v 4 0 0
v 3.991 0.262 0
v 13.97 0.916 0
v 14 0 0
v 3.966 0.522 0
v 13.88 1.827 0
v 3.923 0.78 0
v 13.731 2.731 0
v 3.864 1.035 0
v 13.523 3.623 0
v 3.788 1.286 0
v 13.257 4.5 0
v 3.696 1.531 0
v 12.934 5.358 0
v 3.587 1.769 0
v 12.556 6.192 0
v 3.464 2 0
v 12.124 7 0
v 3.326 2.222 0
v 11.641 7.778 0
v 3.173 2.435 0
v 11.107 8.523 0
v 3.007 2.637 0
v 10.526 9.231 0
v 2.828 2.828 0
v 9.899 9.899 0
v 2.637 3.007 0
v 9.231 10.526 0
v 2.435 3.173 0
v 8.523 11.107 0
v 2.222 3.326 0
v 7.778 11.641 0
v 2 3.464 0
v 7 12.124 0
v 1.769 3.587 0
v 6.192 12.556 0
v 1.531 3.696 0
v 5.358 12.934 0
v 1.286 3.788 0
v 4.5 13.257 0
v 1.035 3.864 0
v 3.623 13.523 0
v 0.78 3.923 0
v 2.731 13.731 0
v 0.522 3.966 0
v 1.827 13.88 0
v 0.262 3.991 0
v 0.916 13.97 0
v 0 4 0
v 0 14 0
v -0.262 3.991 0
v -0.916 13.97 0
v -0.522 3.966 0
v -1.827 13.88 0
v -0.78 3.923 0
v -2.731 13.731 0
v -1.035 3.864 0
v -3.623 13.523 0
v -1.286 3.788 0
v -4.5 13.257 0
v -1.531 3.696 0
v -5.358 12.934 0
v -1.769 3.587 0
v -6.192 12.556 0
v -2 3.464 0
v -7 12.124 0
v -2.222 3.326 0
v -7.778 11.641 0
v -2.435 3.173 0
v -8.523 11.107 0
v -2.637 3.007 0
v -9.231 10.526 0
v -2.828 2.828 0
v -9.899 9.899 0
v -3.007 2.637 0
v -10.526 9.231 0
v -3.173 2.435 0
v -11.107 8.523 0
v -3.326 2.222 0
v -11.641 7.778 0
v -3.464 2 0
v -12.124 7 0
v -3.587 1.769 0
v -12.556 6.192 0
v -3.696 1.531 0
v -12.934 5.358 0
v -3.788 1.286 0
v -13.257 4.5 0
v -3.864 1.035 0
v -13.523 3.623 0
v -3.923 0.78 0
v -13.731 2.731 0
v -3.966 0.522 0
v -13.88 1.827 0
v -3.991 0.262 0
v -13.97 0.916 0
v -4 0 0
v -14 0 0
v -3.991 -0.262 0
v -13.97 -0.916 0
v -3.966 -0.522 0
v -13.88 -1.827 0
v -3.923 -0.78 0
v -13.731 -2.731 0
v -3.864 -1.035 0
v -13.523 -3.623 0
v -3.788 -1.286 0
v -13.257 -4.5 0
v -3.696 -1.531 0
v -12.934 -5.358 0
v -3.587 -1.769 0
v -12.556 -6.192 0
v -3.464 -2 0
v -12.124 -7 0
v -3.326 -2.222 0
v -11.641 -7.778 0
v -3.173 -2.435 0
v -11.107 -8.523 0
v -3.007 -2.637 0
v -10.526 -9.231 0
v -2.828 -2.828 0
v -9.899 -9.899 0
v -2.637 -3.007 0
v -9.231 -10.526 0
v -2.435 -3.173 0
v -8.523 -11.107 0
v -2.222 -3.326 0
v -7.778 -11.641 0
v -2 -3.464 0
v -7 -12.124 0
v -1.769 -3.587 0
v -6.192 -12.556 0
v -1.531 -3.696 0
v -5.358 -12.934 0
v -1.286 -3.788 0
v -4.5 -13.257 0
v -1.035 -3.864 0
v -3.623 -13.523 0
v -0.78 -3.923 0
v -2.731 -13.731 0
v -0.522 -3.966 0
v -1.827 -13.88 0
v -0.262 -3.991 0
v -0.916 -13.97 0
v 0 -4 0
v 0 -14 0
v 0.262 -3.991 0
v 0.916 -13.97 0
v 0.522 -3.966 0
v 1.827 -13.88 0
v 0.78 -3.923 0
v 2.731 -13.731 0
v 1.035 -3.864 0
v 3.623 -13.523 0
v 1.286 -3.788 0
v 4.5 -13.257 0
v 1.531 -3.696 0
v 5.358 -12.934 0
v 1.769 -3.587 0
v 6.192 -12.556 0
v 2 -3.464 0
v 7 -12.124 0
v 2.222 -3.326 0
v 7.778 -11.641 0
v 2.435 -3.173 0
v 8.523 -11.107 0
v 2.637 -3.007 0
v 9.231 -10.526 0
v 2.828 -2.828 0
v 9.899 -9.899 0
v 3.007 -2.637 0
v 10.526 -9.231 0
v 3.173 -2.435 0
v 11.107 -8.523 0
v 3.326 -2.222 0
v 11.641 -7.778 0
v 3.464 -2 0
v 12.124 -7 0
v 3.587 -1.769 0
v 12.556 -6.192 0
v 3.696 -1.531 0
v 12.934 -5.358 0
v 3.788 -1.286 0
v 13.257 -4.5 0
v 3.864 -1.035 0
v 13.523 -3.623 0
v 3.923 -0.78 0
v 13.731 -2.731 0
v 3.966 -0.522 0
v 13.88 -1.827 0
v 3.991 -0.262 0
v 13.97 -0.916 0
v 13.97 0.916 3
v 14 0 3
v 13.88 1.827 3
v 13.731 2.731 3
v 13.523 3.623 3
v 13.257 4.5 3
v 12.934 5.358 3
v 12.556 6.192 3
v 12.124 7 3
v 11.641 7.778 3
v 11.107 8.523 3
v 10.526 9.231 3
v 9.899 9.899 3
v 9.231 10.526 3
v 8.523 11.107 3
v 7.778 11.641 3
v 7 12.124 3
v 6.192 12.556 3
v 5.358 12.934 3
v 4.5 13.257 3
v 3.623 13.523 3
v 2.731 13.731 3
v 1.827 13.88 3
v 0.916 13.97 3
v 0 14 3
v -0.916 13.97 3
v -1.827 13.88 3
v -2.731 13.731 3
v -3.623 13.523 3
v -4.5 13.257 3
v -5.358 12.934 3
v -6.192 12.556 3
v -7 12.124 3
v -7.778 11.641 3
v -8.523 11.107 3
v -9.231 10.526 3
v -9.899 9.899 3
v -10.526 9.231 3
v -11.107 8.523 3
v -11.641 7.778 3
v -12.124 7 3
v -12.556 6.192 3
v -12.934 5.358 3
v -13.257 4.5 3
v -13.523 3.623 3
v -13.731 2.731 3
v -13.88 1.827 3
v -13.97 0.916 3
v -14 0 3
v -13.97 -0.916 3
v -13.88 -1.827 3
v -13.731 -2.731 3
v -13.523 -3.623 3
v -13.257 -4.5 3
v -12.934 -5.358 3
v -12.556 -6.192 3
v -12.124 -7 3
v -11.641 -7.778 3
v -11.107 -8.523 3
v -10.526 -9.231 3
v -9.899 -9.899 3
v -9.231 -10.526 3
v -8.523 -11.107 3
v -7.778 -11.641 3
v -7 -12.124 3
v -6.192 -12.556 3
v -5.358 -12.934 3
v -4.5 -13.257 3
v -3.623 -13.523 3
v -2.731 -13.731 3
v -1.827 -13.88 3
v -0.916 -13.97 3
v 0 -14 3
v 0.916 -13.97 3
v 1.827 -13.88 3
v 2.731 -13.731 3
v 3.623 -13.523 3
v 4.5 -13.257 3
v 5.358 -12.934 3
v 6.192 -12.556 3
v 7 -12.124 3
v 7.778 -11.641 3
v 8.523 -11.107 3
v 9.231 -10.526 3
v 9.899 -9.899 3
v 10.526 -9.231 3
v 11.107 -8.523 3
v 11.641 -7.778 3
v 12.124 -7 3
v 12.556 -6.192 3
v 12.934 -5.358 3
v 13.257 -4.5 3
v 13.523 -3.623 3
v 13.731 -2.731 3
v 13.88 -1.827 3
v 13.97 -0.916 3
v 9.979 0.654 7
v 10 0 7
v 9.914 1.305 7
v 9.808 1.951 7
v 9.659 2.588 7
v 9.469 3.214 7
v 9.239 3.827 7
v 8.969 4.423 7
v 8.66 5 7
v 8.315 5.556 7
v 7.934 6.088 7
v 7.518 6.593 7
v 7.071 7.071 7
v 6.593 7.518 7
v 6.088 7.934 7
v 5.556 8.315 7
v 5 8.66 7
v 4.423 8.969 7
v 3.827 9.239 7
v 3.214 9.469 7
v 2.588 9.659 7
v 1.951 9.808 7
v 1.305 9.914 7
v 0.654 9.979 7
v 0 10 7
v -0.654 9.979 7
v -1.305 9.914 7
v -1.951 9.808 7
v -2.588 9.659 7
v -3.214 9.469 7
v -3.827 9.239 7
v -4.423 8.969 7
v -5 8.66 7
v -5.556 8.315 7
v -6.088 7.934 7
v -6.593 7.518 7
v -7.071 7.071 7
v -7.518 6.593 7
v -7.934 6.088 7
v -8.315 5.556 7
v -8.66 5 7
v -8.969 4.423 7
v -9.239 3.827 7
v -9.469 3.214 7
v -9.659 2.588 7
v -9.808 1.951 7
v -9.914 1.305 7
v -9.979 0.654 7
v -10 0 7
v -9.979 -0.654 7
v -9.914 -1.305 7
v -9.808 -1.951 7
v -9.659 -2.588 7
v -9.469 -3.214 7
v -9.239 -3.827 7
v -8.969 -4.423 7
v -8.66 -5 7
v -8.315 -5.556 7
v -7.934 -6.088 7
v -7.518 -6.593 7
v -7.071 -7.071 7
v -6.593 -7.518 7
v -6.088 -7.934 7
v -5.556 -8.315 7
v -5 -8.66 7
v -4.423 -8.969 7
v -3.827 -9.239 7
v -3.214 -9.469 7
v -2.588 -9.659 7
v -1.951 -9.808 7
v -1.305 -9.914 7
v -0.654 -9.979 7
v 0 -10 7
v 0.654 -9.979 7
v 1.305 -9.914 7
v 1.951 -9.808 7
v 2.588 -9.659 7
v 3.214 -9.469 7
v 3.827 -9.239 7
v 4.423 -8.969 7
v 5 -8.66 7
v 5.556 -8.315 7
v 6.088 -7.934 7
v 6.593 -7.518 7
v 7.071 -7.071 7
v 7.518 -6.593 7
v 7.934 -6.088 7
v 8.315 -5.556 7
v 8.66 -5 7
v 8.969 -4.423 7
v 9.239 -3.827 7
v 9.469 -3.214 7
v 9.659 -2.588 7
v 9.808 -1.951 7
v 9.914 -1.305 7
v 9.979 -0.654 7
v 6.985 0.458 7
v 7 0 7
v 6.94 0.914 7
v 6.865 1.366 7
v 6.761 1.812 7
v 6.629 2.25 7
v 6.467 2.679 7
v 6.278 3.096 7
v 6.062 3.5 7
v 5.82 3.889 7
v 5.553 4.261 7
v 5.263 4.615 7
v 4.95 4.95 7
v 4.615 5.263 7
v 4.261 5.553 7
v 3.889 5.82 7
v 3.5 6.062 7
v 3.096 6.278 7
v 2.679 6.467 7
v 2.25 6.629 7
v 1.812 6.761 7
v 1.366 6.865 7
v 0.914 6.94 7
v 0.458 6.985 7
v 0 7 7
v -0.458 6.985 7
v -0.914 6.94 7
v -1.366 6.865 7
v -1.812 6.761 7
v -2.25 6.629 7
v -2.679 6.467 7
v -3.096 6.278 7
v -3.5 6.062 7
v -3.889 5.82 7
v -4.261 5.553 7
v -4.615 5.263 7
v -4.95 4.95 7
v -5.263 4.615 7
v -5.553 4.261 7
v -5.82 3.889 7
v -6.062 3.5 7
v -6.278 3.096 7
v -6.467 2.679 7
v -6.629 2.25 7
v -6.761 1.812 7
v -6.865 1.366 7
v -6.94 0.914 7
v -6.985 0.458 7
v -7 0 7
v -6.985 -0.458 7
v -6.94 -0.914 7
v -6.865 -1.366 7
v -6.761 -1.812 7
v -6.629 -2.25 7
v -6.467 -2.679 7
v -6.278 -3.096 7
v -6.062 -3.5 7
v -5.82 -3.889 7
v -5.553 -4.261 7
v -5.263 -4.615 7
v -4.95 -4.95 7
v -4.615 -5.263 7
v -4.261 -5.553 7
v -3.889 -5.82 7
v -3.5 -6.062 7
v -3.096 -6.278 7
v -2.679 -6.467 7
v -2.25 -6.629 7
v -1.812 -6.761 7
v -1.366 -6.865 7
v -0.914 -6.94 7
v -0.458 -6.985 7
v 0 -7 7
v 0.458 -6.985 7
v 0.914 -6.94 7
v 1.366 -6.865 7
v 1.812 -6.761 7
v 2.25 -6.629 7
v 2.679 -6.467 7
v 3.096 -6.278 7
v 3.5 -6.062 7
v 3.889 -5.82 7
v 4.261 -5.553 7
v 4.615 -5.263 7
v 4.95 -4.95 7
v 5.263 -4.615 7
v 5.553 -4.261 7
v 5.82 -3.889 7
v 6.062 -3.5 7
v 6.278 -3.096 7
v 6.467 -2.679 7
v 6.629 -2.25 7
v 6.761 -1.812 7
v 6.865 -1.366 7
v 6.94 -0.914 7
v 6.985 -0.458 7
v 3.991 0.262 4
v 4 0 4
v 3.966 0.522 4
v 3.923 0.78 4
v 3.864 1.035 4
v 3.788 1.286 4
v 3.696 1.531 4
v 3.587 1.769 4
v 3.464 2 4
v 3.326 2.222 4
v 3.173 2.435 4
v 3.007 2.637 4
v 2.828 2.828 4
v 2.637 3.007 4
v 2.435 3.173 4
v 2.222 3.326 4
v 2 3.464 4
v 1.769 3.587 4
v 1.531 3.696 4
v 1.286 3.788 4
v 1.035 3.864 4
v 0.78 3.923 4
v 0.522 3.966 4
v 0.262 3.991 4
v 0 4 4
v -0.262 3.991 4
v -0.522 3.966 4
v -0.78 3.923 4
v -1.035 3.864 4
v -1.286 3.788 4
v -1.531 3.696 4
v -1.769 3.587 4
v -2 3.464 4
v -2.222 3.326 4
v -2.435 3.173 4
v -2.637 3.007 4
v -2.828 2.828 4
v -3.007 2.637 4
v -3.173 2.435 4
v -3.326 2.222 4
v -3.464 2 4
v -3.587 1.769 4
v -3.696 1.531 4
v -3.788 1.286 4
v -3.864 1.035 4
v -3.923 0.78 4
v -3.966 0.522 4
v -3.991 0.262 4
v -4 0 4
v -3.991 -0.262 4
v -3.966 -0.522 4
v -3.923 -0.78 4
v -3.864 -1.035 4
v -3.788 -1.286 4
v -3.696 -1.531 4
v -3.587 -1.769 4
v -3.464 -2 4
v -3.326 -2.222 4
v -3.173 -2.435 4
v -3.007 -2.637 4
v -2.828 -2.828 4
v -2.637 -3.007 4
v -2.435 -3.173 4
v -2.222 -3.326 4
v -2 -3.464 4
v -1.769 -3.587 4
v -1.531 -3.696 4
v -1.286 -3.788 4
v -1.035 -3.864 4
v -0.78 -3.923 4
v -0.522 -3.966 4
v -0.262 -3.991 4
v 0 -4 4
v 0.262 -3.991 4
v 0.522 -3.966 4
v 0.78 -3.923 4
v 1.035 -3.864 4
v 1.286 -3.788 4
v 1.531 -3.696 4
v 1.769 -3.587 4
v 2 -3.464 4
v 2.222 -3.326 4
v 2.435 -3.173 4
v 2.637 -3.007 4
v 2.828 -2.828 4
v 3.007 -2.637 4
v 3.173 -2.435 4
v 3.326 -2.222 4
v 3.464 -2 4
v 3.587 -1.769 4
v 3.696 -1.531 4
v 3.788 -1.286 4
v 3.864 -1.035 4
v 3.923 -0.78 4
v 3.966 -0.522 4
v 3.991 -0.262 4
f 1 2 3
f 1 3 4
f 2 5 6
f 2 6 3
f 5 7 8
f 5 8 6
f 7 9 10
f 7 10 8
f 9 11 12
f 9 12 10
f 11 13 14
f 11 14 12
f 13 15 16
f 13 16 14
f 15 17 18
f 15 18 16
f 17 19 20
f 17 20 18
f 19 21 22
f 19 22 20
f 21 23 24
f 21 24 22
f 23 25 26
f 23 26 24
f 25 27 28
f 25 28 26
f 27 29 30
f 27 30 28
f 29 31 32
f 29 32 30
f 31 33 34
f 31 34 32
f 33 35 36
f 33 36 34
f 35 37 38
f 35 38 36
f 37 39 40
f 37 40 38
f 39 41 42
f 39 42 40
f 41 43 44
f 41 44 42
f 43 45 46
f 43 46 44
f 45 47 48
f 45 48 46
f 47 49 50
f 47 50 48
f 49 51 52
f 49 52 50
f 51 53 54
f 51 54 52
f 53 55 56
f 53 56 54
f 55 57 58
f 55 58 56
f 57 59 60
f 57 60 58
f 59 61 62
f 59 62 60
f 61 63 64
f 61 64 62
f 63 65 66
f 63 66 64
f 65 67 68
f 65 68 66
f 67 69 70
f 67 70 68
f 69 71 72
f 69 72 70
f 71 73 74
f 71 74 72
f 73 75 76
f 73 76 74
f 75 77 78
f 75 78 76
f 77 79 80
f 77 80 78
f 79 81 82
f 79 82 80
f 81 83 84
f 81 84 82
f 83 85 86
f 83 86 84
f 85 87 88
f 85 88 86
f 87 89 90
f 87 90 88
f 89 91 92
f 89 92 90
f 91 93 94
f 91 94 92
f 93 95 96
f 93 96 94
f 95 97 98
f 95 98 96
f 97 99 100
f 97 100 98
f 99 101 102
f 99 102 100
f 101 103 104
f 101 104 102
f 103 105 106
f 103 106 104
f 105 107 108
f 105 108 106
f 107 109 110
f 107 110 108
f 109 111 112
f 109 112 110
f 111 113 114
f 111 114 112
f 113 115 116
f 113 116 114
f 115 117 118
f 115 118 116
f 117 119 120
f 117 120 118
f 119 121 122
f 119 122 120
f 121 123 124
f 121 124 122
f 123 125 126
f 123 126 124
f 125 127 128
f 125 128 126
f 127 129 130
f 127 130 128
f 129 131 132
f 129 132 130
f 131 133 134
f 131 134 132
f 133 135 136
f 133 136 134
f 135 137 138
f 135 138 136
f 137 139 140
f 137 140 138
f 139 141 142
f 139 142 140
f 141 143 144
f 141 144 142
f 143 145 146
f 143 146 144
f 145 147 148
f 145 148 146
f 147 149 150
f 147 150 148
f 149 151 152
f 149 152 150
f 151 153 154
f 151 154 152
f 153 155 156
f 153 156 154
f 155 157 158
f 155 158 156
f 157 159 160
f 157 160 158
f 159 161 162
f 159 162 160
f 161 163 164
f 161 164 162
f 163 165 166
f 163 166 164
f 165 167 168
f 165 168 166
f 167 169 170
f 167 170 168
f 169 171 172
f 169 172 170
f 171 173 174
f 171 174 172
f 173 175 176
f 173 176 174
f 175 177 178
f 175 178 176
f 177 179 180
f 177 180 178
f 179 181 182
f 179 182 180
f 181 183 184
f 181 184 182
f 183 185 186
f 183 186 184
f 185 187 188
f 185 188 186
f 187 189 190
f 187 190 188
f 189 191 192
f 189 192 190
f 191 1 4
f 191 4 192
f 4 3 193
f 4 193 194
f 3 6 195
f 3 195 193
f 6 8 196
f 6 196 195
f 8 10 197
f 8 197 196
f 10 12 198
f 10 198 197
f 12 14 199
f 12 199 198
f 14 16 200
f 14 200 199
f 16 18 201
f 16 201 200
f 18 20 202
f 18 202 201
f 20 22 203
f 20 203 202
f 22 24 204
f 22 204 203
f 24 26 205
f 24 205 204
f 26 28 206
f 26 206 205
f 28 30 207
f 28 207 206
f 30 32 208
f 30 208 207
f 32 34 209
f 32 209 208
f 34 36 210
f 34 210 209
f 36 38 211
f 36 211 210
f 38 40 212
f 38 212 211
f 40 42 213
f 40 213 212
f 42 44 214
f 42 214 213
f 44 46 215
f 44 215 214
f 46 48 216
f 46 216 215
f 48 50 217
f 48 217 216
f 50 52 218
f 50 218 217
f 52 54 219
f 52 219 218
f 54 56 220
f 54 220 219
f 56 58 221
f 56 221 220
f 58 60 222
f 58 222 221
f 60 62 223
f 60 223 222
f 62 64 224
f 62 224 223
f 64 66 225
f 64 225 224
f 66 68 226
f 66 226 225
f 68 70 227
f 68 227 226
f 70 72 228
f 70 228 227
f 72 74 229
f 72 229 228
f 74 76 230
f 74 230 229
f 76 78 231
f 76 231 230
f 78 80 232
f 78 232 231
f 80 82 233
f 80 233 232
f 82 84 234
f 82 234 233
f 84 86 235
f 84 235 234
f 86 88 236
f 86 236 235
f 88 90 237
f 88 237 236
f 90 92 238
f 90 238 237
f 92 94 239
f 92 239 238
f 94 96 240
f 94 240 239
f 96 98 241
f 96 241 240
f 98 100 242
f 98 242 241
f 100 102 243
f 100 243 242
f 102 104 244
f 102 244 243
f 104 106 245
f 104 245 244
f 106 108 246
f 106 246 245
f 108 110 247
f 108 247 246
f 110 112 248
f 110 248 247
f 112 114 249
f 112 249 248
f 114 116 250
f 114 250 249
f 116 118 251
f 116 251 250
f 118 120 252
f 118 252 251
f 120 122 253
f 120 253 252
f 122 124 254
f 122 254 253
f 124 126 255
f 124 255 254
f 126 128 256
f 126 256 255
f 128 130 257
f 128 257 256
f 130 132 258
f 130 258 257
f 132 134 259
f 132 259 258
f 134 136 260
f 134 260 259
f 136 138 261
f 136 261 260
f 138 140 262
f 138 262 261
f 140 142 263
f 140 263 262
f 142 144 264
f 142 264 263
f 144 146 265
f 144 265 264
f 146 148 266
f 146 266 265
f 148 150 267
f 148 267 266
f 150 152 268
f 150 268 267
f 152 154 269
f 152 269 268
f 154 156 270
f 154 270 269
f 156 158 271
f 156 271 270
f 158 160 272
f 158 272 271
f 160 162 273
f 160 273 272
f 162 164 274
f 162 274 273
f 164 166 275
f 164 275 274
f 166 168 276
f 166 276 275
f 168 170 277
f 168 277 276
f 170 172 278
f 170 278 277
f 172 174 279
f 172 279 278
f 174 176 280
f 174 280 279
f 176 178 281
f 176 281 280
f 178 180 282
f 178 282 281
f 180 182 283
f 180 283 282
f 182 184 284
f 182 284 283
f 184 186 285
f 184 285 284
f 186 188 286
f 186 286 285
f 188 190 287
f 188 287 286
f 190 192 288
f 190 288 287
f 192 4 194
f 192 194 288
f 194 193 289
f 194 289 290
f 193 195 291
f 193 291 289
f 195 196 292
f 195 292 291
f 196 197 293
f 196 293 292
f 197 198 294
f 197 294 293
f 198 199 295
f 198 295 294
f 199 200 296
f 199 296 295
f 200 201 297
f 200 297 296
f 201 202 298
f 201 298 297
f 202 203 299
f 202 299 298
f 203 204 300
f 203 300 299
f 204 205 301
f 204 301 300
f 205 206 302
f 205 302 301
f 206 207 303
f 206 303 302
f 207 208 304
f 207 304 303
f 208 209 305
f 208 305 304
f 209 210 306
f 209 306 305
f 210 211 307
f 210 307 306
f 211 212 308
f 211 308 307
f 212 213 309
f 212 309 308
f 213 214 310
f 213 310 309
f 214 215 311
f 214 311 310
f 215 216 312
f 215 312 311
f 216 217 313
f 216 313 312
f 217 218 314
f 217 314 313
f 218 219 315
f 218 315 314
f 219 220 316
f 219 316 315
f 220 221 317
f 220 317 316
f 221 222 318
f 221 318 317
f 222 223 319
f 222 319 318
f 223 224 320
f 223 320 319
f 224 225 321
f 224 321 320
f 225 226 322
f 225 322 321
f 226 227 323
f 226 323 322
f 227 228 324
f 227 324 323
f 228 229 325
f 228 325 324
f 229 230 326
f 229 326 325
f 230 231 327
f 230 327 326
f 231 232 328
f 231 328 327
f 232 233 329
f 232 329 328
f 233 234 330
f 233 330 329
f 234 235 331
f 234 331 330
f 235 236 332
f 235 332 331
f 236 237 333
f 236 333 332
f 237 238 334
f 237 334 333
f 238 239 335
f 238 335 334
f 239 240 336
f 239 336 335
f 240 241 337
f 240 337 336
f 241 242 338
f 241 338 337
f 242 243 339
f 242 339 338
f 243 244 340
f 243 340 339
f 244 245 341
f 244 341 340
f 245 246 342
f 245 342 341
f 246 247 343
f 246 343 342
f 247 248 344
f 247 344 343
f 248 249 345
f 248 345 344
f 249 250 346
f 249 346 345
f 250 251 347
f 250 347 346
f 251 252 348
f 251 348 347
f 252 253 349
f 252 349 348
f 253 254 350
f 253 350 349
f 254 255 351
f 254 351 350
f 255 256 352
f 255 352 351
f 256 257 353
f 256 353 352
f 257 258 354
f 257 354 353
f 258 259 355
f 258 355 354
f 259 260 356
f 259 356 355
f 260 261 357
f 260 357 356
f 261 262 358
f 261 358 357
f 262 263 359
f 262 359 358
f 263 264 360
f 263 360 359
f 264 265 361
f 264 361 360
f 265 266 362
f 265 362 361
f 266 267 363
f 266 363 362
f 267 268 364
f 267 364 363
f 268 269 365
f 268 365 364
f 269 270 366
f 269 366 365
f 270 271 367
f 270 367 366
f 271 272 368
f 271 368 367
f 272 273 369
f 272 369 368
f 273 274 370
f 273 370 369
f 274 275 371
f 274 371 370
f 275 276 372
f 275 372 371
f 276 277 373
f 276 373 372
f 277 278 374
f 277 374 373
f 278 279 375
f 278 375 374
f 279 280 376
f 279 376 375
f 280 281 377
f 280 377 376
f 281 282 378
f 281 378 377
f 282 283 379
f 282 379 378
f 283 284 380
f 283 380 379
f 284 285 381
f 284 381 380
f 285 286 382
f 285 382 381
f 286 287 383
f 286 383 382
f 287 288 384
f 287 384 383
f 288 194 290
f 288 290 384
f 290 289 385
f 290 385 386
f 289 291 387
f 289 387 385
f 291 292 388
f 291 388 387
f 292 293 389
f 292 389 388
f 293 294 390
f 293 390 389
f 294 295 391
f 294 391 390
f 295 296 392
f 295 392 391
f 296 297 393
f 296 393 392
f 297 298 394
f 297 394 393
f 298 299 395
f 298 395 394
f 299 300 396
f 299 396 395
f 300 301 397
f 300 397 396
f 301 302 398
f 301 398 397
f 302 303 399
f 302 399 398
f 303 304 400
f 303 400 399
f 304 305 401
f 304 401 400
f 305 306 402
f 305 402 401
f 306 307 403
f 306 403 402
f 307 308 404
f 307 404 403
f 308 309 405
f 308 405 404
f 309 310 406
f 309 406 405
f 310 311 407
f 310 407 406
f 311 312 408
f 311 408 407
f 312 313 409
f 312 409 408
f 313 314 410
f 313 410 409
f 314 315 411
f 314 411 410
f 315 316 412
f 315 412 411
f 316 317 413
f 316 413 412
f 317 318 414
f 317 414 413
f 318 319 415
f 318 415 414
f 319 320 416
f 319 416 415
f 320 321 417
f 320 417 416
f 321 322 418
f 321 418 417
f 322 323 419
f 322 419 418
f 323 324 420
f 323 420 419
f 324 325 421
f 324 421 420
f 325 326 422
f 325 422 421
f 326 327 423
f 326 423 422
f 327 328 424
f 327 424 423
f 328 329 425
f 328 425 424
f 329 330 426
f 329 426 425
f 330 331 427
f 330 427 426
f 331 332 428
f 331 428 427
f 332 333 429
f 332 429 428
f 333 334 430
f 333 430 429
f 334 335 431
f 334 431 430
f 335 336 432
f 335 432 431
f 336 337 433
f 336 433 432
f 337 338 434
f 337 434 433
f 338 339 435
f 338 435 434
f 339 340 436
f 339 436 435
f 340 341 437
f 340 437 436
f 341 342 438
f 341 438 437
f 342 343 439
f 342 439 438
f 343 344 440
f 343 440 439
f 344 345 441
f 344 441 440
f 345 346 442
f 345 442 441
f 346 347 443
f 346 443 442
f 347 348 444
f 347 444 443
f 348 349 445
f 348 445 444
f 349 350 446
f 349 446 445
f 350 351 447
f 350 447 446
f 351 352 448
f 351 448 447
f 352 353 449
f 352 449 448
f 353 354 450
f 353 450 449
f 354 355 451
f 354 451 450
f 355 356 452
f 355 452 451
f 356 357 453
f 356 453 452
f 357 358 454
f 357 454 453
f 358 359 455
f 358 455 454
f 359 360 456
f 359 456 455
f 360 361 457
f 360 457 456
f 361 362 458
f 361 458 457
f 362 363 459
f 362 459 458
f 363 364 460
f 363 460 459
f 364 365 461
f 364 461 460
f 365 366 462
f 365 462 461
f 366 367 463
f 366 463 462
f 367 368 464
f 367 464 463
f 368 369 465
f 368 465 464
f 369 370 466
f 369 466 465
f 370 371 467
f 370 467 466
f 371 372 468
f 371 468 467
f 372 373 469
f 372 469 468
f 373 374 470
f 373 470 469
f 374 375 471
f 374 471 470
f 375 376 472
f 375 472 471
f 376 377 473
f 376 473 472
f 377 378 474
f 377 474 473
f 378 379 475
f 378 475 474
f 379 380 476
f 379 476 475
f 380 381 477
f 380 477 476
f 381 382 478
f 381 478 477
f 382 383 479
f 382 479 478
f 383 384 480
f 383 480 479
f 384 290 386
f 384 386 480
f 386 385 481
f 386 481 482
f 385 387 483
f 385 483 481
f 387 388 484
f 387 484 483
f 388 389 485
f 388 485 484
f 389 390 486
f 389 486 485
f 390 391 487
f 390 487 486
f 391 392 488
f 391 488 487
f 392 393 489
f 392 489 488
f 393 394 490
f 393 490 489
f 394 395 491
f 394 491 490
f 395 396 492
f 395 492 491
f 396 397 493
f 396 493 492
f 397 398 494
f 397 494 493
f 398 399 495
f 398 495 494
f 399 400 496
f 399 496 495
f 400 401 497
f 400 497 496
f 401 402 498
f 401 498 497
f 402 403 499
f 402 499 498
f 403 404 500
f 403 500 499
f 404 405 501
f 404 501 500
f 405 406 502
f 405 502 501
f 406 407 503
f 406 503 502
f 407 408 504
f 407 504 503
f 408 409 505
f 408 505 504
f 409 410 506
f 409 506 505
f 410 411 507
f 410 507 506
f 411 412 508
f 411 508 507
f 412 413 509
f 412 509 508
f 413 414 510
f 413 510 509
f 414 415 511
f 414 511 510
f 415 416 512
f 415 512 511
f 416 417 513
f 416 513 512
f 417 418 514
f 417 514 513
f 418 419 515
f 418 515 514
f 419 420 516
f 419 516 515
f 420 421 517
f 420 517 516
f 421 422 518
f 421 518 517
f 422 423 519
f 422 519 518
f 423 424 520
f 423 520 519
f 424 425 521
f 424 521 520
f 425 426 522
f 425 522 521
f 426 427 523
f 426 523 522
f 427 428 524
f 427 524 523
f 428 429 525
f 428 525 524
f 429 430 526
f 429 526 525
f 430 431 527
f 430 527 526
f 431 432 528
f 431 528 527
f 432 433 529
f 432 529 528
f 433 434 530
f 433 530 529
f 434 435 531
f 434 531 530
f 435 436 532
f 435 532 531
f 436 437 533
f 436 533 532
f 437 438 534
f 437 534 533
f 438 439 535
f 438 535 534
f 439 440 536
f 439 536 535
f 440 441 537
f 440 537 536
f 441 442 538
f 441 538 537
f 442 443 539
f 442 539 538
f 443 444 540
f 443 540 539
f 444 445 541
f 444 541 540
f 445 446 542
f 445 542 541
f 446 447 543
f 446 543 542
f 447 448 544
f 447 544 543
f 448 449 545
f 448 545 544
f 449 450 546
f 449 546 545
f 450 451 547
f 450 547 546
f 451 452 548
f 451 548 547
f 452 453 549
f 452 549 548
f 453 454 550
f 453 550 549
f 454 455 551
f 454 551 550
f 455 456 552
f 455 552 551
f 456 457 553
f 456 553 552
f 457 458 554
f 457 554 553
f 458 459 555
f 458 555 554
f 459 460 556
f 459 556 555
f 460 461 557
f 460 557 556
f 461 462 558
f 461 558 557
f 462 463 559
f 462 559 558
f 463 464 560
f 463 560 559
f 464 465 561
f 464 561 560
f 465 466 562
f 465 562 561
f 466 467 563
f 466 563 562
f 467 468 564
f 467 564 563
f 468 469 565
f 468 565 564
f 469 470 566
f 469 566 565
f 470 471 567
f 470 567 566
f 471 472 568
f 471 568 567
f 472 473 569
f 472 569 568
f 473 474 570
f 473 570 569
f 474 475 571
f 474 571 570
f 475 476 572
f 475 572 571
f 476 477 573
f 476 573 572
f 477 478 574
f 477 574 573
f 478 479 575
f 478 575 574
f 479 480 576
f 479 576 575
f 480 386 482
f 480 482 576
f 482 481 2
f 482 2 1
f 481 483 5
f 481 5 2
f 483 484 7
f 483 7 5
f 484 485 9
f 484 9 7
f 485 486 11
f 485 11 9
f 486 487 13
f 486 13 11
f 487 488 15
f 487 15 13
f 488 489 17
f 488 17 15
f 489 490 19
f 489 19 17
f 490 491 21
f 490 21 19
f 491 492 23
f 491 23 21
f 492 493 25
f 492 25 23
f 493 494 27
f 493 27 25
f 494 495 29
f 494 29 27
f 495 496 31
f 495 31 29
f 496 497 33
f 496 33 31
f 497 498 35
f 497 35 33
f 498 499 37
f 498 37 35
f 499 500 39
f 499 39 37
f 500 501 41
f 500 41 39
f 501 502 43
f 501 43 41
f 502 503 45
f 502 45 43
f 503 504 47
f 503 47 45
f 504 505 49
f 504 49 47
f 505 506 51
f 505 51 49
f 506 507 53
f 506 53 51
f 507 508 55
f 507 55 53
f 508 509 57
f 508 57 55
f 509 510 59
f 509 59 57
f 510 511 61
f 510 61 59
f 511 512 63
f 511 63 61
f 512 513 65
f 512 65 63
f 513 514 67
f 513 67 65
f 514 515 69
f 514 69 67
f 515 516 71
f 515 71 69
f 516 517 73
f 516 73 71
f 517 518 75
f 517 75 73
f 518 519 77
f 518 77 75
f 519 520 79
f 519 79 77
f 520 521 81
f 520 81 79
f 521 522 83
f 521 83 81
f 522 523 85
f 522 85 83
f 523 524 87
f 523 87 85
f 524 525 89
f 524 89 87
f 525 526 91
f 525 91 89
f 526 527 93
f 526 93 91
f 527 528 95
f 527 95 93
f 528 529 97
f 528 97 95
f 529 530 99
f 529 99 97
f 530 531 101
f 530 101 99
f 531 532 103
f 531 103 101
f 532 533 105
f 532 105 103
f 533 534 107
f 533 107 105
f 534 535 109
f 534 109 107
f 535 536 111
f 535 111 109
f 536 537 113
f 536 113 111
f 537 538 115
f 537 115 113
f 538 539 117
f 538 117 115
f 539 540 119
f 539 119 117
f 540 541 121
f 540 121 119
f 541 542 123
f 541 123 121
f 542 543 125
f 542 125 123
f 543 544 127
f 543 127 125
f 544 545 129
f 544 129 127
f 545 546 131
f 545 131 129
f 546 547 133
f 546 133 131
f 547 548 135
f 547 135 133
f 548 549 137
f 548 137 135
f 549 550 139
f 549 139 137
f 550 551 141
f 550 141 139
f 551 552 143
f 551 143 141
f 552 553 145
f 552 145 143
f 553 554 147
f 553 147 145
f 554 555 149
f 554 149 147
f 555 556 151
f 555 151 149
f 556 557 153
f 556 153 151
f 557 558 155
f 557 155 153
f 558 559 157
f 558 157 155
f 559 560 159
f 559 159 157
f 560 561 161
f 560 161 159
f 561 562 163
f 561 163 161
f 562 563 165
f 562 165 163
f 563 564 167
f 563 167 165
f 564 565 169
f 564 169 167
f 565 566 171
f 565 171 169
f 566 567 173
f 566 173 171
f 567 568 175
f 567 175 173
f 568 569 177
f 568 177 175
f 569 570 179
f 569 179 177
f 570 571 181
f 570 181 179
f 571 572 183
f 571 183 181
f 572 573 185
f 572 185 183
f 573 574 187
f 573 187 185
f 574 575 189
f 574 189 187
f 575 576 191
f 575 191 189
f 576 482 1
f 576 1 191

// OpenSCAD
// Original MechIntel educational model. CC0-1.0. Units: mm.
// Not a standardized or load-rated component.
$fn=96;
// Section points: [radius, height], mm. Edit to change the profile.
section=[[4, 0], [14, 0], [14, 3], [10, 7], [7, 7], [4, 4]];
rotate_extrude($fn=96) polygon(points=section);
